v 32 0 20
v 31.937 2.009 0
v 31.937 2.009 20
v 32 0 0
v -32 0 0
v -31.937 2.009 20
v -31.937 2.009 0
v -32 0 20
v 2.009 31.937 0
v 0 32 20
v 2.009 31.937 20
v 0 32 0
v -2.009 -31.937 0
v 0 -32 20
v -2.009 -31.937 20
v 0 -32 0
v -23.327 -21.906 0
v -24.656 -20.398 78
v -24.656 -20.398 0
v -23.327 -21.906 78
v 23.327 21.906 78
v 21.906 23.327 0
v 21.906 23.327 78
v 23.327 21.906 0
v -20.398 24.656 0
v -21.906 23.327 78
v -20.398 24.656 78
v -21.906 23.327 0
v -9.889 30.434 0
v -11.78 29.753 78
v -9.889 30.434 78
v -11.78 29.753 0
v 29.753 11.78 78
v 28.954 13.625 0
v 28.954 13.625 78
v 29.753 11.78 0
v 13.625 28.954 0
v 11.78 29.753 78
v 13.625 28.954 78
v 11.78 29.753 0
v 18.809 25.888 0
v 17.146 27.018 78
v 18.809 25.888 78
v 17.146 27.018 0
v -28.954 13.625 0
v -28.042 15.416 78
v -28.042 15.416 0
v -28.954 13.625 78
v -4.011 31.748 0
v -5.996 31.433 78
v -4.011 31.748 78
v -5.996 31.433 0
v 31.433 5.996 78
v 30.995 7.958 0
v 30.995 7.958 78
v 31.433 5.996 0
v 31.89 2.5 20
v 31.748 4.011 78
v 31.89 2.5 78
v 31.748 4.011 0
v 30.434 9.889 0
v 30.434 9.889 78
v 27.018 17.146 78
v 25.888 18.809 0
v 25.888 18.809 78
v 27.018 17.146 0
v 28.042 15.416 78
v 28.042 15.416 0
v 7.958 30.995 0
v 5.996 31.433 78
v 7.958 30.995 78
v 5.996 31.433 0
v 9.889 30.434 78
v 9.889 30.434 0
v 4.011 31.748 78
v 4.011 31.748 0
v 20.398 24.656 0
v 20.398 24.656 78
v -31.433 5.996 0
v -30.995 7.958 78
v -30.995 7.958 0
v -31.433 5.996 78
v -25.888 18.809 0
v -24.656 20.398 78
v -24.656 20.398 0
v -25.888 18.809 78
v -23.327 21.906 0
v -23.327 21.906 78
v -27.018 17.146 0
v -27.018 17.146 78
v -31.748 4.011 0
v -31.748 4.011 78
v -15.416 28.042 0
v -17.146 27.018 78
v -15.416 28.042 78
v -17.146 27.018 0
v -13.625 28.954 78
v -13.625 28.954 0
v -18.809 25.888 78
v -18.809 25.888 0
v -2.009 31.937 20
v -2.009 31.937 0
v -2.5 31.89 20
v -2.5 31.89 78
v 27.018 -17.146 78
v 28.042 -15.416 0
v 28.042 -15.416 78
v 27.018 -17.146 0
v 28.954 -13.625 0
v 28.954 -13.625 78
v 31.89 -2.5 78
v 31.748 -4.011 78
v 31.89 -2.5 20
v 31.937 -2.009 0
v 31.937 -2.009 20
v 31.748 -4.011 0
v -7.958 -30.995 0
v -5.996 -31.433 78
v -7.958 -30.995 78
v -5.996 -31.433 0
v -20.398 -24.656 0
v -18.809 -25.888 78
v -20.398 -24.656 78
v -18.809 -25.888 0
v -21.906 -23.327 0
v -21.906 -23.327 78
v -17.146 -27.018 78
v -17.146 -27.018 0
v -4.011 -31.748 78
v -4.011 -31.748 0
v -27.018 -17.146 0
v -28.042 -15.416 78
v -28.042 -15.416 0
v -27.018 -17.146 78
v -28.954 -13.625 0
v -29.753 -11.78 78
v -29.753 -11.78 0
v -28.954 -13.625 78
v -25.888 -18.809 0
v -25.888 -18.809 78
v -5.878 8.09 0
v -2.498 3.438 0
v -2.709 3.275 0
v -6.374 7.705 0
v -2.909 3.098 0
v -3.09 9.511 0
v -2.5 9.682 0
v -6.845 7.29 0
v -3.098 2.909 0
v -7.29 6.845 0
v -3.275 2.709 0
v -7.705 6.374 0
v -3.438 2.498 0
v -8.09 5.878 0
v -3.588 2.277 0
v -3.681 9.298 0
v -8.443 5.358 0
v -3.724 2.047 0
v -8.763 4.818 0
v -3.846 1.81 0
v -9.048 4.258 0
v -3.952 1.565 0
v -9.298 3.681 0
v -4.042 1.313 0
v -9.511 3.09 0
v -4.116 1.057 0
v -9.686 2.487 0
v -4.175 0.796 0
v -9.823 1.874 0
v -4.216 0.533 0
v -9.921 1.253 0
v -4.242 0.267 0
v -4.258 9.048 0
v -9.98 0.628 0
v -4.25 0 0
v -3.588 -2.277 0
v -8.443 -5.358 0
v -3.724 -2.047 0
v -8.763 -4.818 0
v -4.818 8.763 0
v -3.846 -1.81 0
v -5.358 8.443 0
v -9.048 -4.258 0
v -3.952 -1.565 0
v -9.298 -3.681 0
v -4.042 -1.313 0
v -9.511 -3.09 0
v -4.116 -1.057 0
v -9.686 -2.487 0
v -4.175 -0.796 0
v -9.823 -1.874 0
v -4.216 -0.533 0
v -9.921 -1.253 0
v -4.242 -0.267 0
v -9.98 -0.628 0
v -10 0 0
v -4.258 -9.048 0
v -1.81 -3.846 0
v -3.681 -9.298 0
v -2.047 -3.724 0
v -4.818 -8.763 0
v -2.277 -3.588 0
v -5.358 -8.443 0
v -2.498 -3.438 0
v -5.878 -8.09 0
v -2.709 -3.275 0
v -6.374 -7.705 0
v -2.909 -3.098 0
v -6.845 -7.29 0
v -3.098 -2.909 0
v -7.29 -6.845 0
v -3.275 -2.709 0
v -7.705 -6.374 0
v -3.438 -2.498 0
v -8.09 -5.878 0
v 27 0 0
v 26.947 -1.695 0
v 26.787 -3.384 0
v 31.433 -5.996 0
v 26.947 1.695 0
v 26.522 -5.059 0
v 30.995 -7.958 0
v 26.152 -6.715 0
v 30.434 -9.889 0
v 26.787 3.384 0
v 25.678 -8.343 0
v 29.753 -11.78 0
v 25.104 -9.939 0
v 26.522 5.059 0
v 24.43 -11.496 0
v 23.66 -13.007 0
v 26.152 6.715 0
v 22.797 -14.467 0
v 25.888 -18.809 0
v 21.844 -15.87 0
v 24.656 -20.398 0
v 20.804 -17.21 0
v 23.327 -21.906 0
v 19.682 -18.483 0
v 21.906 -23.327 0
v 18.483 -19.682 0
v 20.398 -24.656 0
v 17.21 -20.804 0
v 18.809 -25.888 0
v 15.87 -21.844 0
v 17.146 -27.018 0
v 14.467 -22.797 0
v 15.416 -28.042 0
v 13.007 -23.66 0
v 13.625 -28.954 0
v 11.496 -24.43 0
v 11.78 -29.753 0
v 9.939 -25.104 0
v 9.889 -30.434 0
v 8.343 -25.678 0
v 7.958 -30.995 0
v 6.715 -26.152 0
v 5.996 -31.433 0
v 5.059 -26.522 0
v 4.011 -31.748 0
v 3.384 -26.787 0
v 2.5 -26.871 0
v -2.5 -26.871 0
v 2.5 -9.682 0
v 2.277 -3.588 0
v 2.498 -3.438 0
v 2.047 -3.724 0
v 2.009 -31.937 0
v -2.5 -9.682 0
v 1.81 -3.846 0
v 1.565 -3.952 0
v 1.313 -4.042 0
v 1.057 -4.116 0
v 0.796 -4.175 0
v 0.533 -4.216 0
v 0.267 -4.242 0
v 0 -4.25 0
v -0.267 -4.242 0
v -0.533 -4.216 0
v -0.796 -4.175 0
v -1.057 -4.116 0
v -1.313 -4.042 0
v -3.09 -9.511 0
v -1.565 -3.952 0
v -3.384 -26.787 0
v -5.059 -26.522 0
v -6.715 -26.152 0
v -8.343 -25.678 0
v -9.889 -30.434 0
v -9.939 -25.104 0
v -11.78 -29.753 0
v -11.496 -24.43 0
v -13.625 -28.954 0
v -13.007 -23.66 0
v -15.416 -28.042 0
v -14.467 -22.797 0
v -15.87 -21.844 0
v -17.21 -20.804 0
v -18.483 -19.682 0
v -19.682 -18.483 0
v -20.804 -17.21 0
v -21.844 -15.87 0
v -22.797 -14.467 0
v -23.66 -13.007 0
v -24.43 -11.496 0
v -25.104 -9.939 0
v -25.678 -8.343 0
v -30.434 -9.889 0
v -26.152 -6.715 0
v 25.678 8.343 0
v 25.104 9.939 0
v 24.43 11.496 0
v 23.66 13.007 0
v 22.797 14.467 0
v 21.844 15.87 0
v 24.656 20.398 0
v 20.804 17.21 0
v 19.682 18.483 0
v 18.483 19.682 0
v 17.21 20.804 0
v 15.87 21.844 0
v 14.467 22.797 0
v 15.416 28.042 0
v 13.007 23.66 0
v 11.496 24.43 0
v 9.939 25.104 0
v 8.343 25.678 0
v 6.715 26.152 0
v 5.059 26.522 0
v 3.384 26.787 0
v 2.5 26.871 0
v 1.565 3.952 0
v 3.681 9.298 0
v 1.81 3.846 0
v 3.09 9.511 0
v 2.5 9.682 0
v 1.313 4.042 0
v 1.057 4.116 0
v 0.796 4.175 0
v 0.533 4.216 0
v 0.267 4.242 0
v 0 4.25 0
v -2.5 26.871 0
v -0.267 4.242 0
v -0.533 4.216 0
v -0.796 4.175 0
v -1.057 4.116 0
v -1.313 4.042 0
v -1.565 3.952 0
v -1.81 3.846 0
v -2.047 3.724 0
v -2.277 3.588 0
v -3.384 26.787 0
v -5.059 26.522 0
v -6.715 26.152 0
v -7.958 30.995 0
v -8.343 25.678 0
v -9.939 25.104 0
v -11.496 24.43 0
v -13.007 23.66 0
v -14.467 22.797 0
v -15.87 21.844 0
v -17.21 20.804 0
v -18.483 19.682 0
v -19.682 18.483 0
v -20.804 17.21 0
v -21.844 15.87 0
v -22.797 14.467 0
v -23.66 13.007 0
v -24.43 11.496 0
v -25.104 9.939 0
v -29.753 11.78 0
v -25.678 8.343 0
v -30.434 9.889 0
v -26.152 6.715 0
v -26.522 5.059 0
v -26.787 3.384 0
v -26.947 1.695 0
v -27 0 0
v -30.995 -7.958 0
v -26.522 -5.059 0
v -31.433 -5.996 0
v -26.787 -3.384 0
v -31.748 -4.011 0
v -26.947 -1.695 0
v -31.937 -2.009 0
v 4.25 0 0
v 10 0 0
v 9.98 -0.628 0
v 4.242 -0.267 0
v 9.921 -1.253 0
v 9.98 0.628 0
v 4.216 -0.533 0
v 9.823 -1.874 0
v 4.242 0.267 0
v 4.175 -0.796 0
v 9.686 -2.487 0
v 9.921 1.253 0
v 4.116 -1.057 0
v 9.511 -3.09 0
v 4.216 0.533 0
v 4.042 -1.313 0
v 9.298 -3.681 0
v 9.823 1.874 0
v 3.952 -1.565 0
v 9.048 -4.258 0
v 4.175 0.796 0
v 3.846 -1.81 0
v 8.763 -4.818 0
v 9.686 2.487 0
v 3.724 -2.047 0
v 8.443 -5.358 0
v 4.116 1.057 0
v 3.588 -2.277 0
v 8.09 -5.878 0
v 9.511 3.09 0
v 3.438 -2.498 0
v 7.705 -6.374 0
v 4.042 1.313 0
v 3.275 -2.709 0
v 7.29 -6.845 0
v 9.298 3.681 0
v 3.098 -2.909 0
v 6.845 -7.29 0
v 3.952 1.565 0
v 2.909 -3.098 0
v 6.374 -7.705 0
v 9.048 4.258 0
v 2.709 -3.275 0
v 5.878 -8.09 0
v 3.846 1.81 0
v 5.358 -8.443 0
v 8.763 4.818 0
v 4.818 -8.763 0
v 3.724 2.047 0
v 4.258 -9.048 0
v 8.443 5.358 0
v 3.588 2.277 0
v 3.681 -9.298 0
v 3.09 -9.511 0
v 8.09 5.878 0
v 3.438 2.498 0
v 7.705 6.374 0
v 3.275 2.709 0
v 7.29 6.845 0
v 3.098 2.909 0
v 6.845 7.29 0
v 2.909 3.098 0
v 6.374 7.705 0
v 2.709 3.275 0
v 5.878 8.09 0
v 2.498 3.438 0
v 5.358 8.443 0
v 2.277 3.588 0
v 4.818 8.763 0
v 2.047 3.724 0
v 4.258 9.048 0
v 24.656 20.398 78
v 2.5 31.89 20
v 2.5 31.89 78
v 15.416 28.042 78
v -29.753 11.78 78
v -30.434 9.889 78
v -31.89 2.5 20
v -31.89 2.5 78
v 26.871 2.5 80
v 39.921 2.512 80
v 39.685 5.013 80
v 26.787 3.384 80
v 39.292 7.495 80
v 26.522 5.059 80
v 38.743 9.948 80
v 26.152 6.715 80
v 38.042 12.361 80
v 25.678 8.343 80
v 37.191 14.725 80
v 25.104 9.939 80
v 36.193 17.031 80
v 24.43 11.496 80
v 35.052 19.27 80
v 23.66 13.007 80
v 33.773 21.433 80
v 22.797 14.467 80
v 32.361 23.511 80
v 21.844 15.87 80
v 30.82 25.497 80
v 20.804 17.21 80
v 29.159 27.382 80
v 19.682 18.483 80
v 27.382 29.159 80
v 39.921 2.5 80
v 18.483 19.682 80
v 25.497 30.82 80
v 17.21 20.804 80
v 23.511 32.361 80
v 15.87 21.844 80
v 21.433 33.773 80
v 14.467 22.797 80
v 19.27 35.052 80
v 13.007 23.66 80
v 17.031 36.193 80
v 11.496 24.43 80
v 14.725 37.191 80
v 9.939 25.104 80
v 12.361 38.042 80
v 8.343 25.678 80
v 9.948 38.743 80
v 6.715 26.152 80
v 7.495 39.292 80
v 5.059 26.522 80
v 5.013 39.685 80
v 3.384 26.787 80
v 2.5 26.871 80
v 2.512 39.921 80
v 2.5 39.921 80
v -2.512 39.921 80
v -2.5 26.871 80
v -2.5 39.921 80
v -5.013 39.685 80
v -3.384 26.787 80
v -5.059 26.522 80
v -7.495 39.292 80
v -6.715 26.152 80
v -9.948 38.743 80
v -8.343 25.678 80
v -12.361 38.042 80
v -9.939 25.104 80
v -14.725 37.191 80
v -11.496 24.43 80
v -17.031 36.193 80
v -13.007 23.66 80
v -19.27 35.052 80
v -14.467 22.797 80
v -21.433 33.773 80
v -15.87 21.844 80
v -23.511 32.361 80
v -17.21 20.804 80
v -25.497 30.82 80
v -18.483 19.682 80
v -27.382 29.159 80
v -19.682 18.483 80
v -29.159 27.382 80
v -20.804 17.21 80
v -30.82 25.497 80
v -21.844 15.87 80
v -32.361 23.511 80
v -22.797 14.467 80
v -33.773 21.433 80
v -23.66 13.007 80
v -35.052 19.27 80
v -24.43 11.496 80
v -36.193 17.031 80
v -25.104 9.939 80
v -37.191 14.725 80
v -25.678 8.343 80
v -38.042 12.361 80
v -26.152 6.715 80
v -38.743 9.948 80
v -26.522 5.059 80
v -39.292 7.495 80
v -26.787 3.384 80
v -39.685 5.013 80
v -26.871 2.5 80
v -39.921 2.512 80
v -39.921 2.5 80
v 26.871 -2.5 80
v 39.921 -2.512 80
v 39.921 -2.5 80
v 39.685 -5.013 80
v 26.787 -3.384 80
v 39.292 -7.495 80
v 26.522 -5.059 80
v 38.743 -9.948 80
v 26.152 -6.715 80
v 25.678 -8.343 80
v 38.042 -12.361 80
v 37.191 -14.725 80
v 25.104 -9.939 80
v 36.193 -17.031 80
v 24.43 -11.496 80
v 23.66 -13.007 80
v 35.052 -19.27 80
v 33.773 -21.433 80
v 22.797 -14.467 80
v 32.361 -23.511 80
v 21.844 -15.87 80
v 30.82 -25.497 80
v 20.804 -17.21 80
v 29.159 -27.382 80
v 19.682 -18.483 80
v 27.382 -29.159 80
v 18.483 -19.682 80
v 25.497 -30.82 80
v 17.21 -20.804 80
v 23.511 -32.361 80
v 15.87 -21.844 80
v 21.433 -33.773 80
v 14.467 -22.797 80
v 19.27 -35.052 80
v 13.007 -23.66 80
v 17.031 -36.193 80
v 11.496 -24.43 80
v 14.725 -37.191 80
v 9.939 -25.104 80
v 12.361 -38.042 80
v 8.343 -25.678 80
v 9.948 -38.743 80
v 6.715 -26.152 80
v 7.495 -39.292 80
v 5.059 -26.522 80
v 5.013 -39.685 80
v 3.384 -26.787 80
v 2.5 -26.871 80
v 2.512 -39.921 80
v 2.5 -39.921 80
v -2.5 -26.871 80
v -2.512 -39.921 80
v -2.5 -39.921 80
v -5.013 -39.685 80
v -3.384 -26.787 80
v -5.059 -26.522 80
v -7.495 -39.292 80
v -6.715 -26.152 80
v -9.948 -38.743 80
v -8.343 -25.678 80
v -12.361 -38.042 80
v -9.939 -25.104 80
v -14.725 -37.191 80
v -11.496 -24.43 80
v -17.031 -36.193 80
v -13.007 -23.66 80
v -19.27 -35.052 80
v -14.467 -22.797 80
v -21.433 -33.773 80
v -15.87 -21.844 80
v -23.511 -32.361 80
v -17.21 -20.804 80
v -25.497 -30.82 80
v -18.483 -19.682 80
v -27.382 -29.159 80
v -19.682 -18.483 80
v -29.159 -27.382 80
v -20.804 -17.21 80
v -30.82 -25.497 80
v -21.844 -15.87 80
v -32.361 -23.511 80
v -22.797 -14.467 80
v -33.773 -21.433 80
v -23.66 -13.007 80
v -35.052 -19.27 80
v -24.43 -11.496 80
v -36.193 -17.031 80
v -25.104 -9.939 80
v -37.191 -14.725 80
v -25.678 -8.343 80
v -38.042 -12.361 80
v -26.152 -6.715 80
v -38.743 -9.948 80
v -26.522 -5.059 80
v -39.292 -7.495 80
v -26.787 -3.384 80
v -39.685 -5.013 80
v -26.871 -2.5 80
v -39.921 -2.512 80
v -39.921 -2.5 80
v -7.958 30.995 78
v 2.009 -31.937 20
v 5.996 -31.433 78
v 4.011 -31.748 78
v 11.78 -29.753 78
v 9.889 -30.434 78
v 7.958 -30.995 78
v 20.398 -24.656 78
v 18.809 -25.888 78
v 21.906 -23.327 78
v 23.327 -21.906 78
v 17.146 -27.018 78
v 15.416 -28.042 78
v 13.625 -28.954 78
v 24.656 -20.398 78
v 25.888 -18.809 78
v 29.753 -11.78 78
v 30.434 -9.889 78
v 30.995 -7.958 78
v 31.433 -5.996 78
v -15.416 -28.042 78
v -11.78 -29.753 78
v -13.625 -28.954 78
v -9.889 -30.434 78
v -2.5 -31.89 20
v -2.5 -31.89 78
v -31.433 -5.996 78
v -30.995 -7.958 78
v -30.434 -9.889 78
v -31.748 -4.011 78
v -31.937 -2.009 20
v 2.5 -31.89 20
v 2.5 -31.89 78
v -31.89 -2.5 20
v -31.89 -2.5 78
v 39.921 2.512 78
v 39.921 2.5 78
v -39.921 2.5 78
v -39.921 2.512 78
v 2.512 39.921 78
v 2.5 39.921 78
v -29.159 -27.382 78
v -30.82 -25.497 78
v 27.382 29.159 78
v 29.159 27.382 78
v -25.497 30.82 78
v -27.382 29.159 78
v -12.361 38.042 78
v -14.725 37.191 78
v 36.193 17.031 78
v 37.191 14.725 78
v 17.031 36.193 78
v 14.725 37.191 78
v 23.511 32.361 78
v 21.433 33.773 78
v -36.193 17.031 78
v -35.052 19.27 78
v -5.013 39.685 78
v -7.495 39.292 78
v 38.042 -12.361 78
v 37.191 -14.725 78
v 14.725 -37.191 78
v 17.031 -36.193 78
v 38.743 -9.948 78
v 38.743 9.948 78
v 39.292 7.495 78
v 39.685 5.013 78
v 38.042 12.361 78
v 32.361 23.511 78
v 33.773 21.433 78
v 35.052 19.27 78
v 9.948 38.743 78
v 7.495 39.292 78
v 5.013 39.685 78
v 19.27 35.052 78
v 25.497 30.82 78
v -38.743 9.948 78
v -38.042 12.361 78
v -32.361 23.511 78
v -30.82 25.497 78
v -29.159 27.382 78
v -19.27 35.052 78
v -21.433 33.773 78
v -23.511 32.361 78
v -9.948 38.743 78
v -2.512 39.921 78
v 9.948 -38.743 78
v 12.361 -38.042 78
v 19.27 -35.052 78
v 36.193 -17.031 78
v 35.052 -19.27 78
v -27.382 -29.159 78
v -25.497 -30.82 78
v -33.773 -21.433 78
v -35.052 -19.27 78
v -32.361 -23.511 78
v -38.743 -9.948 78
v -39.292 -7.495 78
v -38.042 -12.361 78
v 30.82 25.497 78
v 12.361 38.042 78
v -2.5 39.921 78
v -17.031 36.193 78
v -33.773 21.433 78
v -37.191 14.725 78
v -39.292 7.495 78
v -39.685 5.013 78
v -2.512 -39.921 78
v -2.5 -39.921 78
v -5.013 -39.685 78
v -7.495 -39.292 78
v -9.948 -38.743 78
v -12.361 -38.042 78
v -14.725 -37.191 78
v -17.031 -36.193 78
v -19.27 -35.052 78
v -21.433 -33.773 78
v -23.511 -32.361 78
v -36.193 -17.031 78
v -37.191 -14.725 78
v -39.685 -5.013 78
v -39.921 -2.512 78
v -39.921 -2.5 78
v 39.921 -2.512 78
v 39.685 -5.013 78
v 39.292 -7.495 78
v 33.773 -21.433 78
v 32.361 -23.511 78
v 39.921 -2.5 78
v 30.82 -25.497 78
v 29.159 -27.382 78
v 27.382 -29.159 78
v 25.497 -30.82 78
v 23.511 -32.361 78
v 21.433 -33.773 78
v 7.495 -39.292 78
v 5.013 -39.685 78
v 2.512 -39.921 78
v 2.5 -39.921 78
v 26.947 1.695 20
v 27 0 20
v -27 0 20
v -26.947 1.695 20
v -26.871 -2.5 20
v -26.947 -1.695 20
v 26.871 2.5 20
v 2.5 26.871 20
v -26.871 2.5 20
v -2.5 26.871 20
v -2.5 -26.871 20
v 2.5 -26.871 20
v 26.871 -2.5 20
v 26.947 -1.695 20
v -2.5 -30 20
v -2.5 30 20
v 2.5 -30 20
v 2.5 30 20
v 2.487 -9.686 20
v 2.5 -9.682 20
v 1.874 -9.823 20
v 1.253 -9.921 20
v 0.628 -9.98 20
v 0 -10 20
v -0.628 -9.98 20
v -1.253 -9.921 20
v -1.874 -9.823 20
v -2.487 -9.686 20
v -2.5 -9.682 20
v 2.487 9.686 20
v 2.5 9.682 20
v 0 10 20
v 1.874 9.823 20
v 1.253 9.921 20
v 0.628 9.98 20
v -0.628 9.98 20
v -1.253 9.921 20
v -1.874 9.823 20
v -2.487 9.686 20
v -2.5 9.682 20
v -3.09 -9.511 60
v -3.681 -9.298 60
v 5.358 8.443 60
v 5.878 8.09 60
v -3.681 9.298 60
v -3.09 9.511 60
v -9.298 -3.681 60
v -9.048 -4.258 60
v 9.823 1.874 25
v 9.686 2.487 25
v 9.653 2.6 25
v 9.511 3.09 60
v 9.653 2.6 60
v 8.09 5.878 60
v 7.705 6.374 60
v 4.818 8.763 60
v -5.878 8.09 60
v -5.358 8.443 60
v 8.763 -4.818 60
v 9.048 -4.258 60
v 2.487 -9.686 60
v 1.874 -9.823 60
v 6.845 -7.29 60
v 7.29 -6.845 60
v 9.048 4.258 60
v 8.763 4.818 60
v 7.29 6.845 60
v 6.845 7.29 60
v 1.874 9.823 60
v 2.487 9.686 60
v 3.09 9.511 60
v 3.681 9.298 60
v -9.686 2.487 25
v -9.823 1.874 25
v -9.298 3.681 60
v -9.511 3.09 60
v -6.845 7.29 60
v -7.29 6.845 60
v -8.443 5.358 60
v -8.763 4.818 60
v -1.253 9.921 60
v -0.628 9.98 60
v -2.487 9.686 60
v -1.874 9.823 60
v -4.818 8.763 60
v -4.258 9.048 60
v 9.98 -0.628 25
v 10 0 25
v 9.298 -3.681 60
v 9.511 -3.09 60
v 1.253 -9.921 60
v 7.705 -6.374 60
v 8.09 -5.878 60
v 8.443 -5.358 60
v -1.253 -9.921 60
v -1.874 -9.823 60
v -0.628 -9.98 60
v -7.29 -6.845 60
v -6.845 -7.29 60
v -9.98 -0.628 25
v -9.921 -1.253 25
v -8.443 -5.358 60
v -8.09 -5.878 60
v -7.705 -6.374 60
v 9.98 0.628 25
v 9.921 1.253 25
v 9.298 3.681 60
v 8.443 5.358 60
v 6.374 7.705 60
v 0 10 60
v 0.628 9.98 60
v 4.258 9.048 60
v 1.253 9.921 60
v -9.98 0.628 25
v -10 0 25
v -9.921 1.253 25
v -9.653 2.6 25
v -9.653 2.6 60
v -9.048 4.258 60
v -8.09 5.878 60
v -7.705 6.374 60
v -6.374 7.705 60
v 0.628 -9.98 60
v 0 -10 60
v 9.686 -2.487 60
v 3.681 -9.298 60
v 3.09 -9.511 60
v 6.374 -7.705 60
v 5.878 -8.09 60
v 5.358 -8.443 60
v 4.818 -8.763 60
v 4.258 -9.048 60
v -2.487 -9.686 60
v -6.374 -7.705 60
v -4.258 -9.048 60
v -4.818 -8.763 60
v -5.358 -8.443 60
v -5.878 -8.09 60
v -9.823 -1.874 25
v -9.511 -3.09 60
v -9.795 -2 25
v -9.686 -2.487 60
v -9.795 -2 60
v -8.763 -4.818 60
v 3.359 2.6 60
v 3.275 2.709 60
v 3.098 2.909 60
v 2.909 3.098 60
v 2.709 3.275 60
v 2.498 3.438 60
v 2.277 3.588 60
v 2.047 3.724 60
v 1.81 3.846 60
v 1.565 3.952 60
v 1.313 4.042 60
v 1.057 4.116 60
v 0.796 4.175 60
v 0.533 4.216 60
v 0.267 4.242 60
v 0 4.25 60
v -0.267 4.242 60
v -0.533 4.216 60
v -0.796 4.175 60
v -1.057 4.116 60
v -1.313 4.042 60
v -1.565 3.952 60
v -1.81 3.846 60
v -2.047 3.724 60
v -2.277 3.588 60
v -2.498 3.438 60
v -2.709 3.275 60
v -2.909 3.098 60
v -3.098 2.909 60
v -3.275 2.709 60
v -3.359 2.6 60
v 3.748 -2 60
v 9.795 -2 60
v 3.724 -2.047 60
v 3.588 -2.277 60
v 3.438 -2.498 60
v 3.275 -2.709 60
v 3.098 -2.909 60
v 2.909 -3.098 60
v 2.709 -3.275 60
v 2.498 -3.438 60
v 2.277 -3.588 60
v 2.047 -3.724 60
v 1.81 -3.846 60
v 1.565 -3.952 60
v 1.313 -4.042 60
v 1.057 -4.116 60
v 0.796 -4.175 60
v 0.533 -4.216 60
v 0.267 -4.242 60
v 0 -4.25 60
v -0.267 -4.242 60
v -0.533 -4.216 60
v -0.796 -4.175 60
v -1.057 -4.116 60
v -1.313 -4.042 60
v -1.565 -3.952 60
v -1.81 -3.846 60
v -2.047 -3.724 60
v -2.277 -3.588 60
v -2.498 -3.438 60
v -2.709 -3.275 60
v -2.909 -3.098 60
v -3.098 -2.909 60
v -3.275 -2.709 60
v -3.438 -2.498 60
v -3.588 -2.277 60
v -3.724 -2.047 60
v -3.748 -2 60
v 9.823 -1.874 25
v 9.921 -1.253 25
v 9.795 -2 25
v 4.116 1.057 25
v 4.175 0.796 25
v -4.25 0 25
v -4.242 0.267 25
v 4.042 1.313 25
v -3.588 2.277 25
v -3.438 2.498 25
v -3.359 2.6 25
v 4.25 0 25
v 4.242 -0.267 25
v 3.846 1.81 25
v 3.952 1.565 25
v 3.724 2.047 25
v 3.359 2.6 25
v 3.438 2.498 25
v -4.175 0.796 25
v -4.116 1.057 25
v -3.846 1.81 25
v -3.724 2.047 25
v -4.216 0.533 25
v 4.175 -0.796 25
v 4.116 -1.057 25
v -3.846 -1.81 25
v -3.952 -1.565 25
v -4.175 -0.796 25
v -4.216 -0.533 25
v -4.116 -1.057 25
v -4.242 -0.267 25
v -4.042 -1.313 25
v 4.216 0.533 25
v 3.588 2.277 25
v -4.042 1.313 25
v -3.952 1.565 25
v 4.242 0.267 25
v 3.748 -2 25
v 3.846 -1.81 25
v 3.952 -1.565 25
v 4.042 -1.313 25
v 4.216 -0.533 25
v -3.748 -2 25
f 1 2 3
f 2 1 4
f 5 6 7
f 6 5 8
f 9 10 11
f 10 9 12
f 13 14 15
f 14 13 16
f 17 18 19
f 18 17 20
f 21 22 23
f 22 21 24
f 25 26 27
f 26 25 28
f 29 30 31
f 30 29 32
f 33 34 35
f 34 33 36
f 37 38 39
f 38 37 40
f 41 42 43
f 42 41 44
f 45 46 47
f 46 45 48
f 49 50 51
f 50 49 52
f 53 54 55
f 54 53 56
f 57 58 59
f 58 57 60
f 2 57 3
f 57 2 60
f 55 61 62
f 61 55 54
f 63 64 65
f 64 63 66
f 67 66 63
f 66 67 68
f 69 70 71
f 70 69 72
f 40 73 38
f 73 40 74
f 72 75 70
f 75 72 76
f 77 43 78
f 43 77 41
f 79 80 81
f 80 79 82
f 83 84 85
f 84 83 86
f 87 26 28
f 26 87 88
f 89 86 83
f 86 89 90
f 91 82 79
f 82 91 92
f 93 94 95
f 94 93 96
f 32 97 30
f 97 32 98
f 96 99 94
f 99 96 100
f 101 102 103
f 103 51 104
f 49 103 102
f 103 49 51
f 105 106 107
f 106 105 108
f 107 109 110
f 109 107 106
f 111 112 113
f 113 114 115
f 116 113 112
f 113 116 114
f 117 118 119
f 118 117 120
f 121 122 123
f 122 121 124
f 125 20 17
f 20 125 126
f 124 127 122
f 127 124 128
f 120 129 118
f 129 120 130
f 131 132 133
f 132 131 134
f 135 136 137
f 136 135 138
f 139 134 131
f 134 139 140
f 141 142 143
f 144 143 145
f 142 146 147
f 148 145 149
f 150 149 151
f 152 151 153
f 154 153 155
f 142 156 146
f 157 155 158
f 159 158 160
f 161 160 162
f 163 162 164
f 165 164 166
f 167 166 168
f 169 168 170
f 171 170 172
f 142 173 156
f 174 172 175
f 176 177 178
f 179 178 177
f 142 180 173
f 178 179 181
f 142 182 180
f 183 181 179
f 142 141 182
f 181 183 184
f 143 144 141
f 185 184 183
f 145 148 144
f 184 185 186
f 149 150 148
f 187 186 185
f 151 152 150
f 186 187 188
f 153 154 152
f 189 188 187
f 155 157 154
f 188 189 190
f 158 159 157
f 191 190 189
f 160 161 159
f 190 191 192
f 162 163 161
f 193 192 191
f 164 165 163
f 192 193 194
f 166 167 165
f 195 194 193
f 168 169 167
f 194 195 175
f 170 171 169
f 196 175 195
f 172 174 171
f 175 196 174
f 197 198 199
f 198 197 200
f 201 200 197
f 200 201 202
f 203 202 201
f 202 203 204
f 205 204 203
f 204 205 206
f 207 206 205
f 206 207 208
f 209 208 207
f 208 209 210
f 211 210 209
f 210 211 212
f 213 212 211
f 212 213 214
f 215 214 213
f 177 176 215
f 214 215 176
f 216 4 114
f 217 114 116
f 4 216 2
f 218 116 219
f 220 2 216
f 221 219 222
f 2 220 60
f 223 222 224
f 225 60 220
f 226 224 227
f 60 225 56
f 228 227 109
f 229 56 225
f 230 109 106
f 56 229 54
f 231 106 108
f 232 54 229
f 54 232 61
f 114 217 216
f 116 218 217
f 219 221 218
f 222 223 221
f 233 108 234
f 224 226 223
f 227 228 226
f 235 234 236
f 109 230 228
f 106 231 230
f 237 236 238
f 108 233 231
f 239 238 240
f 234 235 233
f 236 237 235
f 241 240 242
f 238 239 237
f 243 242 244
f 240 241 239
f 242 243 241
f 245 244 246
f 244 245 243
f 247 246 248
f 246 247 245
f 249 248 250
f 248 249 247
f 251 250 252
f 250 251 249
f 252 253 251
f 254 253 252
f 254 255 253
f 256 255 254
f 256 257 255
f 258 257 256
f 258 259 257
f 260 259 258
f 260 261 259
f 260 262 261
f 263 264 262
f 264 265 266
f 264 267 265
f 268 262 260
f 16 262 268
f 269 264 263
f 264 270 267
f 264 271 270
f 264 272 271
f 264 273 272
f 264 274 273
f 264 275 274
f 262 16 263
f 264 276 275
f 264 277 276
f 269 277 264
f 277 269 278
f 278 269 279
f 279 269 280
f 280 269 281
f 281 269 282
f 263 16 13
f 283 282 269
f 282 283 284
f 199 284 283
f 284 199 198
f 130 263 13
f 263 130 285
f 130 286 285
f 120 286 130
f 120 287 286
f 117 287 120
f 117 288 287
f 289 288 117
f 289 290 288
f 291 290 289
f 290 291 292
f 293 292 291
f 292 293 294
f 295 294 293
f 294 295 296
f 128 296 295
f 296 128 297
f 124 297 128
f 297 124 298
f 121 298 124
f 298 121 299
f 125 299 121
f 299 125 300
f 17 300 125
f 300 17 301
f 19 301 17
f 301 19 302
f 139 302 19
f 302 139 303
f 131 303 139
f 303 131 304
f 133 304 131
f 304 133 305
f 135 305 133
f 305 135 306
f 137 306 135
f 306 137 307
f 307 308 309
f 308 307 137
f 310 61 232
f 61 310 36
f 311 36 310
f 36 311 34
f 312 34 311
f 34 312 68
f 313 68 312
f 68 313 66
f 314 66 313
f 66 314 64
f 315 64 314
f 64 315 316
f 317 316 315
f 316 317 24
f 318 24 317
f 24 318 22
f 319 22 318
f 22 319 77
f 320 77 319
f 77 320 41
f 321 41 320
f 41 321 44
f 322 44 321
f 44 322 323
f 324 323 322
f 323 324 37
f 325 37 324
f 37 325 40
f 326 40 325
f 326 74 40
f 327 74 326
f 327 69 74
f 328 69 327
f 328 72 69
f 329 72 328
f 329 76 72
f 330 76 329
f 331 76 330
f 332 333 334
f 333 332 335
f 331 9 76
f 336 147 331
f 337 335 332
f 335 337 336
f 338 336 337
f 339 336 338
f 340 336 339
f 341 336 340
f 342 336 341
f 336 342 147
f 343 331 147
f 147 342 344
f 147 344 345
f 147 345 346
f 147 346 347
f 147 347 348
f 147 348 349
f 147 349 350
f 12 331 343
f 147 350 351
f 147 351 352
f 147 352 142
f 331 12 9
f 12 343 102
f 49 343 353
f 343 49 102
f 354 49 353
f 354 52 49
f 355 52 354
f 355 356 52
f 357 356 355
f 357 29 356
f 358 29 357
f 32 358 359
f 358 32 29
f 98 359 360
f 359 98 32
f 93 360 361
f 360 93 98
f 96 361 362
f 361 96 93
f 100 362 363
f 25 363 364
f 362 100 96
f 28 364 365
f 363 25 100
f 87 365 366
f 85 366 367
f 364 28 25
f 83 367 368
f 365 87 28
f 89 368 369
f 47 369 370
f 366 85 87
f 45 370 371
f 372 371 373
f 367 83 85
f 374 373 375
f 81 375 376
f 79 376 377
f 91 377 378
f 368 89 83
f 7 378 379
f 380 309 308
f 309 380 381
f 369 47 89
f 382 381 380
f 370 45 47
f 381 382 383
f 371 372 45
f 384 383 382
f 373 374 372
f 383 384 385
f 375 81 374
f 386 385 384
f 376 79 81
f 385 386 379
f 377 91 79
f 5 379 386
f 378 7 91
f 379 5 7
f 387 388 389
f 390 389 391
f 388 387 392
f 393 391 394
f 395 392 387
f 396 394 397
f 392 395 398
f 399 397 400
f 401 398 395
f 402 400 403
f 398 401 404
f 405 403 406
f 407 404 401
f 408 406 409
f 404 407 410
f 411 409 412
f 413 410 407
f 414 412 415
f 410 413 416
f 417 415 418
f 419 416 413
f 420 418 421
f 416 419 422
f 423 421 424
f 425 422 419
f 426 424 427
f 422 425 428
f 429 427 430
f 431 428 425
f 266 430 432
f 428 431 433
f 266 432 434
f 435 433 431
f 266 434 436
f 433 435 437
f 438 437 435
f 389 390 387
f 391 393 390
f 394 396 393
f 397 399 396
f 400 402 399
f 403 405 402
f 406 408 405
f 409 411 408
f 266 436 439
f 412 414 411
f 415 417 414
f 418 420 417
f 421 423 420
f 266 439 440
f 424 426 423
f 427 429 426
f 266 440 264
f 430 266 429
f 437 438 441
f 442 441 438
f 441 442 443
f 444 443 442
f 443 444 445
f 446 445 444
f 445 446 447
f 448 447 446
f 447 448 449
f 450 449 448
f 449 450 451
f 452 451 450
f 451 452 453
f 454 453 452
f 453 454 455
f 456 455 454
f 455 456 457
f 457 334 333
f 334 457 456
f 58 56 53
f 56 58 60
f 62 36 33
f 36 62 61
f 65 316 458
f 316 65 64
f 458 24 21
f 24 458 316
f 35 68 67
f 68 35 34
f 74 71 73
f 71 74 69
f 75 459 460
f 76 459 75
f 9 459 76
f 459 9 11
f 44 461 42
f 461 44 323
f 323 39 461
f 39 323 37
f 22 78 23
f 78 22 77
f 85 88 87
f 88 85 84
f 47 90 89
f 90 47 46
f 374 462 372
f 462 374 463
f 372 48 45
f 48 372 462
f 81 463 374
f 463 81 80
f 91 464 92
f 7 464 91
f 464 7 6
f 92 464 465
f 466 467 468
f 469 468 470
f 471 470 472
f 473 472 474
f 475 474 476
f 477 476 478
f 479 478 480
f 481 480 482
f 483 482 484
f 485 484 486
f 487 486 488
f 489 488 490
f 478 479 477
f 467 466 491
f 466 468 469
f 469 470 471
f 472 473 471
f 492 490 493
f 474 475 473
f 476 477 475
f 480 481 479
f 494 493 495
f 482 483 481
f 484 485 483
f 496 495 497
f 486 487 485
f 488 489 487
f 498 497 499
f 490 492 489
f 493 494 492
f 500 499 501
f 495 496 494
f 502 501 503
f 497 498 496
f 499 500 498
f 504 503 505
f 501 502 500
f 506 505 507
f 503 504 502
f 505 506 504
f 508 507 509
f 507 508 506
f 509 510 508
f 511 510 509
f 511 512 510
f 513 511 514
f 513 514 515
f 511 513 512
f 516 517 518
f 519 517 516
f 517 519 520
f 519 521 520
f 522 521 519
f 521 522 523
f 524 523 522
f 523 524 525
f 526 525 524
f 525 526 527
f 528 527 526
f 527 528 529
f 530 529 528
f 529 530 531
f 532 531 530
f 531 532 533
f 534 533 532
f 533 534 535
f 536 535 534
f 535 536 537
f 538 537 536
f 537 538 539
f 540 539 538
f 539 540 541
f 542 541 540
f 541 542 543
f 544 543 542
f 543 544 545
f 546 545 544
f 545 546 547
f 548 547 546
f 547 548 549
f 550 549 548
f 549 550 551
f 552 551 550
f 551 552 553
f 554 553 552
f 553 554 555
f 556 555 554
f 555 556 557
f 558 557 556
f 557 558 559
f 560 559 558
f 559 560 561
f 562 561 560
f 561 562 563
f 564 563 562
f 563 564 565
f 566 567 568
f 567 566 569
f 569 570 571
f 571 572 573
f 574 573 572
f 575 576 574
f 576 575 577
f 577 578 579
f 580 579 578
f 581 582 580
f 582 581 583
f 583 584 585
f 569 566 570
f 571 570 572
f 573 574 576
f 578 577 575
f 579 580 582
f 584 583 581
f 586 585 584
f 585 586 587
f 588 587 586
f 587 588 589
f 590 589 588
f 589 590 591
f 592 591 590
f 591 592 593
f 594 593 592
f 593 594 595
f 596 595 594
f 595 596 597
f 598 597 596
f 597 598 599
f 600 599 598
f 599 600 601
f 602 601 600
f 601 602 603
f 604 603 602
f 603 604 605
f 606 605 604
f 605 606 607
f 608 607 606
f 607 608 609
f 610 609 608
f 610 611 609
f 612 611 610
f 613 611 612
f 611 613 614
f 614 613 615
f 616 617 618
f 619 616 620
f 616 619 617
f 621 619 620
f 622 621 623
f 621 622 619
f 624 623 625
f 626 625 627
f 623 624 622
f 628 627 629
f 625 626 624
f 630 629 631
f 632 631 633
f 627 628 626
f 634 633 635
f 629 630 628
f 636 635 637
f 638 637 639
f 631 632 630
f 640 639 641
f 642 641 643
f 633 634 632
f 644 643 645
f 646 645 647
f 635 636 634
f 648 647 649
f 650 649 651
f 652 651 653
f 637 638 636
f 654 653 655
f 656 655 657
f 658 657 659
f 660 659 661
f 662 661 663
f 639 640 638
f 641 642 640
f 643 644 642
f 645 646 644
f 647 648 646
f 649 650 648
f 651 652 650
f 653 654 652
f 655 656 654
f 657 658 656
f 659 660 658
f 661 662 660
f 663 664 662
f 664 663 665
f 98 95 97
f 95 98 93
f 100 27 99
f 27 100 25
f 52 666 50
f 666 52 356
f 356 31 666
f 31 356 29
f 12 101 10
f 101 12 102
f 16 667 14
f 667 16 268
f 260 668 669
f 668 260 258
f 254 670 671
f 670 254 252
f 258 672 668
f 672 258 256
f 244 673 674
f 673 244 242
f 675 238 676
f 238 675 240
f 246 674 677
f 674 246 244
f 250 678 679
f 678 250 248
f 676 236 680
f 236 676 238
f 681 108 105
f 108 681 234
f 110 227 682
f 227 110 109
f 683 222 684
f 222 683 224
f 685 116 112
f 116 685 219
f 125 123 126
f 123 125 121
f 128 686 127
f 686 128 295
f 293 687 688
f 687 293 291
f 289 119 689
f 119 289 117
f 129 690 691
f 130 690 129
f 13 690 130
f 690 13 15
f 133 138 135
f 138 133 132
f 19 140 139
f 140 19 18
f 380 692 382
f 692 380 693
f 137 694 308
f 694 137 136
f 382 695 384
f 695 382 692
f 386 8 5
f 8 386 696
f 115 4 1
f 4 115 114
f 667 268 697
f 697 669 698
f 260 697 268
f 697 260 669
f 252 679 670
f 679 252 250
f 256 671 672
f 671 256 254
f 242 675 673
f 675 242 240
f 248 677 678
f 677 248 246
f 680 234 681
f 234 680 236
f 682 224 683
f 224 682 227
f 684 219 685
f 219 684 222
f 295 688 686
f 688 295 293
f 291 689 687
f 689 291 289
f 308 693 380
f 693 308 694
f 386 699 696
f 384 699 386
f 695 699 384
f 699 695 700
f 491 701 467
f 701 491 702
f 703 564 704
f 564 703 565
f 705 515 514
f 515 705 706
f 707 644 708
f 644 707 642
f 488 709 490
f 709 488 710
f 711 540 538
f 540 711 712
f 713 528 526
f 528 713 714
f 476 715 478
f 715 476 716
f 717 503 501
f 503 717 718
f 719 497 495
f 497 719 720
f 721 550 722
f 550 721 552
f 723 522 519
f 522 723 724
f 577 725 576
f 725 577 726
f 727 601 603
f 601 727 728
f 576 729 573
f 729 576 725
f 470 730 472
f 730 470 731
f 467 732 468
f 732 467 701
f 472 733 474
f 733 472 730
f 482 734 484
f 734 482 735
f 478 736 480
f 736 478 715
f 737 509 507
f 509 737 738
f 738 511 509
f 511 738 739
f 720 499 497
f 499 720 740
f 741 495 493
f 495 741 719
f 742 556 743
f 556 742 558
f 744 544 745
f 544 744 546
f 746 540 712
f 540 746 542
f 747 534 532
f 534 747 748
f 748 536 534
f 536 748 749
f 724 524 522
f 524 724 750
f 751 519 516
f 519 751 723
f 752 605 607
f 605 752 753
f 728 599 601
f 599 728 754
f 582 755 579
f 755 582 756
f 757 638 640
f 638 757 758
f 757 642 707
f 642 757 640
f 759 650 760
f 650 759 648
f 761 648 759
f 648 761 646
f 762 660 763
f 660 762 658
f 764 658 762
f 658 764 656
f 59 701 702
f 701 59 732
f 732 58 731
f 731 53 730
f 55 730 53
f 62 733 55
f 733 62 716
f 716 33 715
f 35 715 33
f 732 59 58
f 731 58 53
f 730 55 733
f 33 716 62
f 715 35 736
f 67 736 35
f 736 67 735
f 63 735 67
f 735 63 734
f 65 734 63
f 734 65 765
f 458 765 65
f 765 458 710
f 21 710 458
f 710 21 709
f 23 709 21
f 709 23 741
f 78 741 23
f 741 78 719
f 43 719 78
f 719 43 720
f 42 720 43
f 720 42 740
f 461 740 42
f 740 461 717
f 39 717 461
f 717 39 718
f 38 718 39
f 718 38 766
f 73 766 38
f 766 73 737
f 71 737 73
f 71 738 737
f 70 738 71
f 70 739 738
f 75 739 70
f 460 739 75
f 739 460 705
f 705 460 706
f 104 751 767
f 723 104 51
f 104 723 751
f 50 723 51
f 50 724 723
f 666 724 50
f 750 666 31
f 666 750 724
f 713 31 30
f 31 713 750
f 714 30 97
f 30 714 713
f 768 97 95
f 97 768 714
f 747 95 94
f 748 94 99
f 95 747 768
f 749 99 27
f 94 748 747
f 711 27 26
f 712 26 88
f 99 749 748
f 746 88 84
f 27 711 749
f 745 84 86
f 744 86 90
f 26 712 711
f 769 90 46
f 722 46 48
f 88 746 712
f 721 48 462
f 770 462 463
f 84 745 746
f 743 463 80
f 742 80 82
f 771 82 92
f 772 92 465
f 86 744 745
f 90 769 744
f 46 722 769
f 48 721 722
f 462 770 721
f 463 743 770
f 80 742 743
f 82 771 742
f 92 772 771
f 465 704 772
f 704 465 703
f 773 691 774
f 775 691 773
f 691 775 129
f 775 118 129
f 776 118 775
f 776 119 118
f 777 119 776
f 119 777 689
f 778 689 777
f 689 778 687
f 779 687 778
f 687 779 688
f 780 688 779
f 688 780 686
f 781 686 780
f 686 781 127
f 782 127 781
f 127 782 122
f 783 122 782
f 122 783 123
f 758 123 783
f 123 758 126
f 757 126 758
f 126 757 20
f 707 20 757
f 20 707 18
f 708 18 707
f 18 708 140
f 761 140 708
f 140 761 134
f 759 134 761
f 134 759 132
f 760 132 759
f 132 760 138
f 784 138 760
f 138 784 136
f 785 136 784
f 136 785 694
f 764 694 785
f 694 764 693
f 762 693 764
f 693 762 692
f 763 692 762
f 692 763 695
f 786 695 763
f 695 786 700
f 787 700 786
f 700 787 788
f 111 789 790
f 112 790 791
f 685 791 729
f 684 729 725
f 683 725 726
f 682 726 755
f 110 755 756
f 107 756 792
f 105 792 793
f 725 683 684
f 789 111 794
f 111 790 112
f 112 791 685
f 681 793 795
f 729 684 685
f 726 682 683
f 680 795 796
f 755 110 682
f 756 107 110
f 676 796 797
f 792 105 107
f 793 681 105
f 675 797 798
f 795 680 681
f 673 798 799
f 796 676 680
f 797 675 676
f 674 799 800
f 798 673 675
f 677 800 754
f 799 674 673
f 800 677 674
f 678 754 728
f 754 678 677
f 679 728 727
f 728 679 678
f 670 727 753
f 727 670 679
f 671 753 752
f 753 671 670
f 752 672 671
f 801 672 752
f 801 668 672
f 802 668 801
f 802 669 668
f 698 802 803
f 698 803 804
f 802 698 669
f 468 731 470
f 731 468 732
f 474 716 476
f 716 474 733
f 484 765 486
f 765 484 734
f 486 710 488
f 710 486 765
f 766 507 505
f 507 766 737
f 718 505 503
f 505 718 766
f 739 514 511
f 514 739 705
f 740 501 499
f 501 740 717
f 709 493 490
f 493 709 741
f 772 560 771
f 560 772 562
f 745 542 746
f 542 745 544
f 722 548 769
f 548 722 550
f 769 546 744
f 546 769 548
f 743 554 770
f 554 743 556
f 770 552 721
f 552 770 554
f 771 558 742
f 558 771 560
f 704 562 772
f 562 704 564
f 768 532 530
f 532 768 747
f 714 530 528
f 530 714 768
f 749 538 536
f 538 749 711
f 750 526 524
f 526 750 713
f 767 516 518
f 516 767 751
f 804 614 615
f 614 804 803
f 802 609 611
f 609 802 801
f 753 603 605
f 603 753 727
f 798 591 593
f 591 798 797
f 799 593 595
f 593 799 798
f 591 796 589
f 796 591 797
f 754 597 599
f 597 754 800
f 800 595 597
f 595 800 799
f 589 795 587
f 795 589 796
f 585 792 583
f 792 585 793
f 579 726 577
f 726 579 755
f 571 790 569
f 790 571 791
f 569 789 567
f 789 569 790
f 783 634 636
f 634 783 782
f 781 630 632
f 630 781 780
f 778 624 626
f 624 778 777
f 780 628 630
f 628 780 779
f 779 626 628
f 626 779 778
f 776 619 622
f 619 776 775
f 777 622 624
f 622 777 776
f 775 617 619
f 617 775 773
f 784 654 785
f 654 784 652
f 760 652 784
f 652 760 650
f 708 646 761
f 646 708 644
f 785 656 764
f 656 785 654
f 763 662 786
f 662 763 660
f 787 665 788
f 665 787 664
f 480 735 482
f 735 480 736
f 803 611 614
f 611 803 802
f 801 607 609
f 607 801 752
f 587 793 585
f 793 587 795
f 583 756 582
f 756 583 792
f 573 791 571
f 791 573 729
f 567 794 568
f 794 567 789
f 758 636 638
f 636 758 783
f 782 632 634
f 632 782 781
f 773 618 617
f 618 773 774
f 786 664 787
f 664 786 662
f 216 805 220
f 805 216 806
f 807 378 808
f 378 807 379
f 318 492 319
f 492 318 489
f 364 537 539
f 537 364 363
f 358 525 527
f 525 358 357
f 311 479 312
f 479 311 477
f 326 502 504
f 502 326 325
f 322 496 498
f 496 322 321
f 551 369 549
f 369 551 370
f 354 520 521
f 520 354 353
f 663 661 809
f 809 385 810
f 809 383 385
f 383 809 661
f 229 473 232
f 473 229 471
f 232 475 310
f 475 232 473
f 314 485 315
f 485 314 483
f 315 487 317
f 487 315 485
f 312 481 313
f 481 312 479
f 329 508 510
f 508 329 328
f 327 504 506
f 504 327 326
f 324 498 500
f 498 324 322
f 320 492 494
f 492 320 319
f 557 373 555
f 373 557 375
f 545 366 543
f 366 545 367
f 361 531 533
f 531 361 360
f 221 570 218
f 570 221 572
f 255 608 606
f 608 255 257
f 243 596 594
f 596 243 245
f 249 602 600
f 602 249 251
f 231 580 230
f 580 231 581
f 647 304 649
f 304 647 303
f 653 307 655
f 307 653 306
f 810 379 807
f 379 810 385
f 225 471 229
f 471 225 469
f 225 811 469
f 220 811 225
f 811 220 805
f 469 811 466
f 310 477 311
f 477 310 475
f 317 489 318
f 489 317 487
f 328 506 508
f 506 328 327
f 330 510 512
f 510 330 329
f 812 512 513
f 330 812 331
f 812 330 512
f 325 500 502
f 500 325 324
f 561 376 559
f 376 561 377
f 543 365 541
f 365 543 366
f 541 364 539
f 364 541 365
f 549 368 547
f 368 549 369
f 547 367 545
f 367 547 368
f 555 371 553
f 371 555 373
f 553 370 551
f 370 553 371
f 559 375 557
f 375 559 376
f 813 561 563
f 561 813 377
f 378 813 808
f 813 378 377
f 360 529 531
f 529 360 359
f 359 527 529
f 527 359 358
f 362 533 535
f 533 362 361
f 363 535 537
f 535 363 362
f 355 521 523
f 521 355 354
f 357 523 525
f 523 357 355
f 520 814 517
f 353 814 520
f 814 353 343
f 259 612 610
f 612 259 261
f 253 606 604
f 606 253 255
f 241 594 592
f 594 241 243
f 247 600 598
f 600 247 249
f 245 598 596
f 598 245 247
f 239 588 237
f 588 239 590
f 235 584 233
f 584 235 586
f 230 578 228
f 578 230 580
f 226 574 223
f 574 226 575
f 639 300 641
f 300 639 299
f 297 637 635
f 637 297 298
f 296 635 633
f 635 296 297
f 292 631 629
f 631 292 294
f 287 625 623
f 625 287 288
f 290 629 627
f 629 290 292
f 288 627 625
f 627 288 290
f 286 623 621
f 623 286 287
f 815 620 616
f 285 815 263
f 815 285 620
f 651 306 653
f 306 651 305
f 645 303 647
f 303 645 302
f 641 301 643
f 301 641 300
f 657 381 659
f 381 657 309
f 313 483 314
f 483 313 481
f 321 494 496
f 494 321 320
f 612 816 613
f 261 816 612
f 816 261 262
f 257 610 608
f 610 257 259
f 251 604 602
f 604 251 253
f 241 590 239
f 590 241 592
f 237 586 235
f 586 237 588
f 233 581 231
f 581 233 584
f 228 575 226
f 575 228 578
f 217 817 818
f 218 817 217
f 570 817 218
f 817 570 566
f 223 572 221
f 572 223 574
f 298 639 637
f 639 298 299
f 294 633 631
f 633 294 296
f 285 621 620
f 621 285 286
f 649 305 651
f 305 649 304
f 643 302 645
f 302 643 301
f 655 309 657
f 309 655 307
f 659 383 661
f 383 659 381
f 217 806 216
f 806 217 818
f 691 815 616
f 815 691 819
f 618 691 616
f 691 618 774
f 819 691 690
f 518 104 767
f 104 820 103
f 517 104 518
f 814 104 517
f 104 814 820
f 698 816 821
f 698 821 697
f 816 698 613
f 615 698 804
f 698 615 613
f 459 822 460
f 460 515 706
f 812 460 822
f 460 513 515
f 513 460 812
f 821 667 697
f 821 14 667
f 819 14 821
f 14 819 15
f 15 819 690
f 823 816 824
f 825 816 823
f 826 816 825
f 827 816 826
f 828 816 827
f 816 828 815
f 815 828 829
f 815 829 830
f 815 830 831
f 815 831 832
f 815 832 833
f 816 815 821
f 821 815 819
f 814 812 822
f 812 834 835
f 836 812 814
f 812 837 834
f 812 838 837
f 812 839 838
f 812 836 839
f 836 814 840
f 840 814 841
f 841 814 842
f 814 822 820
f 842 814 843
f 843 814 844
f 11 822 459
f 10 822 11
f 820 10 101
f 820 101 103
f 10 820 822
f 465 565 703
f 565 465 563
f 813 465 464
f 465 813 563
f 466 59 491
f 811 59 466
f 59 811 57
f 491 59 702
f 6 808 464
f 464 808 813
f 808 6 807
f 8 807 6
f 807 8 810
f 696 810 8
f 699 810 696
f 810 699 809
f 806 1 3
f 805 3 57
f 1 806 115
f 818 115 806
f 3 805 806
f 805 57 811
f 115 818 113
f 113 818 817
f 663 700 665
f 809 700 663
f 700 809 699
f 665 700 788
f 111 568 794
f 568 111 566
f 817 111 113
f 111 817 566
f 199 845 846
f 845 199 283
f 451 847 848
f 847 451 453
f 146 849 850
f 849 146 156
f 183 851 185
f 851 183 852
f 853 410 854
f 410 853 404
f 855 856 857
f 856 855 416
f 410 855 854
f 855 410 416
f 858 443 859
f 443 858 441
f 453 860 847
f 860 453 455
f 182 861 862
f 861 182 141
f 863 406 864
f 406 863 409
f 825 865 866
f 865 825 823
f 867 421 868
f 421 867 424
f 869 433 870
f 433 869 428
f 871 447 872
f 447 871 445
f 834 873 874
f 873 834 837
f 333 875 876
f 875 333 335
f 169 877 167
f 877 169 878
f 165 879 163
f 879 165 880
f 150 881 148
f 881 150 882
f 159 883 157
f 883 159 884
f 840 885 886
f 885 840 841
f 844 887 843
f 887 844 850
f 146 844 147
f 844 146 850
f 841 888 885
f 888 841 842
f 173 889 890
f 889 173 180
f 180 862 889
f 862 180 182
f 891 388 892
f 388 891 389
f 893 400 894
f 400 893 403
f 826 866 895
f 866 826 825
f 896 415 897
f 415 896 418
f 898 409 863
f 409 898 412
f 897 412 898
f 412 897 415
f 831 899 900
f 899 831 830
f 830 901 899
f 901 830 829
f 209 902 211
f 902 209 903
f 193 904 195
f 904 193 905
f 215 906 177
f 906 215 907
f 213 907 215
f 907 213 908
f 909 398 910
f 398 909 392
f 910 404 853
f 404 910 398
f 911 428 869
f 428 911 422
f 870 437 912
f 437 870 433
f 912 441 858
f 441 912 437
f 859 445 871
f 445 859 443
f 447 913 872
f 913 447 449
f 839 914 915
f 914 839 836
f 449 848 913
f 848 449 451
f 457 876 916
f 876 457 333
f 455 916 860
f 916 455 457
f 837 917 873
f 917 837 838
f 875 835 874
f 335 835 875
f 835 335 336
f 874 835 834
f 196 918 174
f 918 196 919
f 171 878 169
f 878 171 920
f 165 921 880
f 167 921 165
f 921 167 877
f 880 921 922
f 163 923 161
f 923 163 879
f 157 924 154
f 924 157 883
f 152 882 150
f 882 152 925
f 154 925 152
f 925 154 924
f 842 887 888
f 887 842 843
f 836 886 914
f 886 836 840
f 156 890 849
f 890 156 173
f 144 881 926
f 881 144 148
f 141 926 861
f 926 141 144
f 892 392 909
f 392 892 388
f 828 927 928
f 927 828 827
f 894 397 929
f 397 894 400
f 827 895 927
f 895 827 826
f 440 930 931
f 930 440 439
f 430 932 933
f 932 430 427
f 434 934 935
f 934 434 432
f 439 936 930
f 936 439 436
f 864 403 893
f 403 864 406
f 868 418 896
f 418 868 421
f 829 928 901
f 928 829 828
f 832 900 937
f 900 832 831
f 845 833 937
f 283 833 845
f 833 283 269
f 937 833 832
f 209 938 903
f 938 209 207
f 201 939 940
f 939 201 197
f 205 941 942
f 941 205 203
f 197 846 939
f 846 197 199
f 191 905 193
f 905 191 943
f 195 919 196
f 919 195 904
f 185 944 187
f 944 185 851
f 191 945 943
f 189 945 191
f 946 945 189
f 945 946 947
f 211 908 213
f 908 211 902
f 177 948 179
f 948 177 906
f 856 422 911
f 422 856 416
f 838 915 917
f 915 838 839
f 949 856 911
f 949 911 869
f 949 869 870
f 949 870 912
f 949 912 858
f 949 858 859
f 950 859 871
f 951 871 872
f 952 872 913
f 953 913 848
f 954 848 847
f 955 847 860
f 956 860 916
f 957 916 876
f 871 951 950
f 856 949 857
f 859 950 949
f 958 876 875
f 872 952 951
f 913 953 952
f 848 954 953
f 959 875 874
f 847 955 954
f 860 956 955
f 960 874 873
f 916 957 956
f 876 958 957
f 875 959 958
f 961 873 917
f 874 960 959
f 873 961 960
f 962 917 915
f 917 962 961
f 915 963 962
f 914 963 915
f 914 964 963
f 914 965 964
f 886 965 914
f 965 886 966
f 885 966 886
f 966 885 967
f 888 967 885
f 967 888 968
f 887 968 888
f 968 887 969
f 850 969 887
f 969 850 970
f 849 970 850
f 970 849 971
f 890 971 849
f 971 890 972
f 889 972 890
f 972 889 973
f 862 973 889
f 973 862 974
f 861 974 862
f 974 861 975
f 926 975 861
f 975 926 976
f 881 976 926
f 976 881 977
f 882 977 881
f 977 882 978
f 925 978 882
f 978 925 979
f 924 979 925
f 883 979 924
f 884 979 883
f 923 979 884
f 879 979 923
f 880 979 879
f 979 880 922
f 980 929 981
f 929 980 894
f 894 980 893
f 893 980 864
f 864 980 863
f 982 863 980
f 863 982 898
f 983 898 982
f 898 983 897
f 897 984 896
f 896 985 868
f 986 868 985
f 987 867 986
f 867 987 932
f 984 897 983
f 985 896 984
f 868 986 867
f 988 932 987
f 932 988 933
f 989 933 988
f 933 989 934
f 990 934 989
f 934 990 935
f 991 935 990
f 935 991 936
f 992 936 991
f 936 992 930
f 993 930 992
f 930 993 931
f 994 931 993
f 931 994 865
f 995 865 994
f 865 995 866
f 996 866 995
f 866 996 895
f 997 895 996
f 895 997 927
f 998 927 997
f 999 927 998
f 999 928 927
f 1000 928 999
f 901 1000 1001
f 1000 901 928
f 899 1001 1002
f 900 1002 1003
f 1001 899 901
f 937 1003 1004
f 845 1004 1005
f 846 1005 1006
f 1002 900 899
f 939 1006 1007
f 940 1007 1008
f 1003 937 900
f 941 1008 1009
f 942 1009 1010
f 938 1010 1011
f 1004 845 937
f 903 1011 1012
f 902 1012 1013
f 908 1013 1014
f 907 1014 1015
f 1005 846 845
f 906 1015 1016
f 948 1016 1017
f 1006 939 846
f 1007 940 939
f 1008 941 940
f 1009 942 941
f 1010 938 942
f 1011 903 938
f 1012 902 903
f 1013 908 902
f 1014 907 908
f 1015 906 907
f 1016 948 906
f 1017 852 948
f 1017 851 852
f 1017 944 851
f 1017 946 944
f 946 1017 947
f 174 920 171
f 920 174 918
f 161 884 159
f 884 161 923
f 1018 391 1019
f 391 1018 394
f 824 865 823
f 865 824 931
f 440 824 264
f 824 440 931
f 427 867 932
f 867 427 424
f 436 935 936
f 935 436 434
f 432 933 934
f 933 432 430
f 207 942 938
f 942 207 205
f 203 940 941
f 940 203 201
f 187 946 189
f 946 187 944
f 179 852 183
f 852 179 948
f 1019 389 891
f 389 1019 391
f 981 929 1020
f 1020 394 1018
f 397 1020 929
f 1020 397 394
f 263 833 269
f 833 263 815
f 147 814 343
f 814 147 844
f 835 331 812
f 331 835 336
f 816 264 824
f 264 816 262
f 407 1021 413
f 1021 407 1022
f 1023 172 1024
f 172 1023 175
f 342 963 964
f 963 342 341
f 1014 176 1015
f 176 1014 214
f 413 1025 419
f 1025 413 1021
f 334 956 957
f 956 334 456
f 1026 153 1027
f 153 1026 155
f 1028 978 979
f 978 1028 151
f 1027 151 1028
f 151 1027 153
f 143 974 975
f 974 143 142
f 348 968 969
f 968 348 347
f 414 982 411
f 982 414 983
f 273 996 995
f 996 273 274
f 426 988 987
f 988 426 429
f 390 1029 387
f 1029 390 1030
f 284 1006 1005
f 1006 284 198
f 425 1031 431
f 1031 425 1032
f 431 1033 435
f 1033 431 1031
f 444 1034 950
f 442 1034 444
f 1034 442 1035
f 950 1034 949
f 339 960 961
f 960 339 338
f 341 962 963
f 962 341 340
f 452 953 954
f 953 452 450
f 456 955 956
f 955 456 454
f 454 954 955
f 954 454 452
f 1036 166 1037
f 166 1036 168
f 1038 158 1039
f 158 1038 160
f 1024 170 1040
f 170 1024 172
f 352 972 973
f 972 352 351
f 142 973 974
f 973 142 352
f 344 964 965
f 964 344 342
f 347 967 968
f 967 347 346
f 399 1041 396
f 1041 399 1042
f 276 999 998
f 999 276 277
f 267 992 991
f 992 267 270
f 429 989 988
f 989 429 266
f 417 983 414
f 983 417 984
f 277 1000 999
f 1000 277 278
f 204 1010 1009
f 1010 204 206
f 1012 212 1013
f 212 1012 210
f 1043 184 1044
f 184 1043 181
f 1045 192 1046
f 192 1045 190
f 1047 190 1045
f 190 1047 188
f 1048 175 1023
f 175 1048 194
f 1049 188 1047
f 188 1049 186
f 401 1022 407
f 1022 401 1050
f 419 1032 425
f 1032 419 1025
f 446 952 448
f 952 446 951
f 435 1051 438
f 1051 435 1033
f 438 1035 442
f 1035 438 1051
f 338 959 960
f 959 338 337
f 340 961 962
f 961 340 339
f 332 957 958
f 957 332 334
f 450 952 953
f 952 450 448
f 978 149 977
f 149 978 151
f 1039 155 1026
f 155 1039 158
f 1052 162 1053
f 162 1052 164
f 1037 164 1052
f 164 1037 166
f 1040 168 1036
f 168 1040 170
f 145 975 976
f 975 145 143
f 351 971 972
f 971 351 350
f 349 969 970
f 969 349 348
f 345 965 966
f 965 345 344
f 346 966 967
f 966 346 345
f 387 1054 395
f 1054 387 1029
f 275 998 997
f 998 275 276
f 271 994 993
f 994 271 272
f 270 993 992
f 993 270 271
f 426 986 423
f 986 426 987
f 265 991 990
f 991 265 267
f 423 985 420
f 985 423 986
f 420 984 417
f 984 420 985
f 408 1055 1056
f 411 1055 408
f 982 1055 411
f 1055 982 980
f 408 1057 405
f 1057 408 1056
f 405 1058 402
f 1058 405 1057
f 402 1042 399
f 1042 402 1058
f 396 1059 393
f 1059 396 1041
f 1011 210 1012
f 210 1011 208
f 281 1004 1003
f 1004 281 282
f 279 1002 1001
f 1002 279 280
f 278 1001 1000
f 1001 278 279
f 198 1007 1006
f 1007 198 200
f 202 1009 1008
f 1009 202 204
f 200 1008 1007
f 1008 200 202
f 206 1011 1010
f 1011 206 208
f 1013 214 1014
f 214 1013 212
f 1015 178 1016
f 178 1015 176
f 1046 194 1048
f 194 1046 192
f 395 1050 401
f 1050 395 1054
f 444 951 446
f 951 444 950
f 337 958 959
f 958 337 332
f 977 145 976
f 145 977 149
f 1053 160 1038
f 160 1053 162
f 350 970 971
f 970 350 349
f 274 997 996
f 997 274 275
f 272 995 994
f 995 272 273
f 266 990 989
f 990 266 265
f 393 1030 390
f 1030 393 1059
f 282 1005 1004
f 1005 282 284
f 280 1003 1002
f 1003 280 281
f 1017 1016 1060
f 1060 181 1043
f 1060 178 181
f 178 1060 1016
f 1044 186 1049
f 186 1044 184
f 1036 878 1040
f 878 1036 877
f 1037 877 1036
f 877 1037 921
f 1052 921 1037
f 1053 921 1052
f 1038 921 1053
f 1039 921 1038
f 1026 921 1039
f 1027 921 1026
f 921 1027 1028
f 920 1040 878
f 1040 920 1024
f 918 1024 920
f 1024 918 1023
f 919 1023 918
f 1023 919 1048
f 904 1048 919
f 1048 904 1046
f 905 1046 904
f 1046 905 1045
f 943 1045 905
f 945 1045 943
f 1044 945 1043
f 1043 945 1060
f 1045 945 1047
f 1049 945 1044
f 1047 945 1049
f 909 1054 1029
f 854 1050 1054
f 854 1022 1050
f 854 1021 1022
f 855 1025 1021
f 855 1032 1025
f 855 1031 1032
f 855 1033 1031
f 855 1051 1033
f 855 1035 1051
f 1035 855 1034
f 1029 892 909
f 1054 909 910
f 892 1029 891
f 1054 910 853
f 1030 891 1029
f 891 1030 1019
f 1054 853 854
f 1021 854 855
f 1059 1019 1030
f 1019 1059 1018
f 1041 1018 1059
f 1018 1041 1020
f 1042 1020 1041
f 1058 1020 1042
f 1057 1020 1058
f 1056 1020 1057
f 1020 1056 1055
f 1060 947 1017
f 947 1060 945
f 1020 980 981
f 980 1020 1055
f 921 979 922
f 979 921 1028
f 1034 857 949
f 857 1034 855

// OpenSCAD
$fn=100;
difference(){
union(){
cylinder(r=32,h=80);
translate([0,0,78])
cylinder(r=40,h=2);
}
translate([0,0,-10])
cylinder(r=27,h=192);
translate([-2.5,-40,20])
cube([5,80,110]);
translate([-40,-2.5,20])
cube([80,5,110]);
}
difference(){
union(){
cylinder(r=10,h=60);
translate([-2.5,-30,0])
cube([5,60,20]);
}
translate([0,0,-10])
cylinder(r=4.25,h=92);
//translate([-2,-20,25])
//cube([1.6,40,110]);
translate([-20,-2,25])
cube([40,4.6,110]);
}
